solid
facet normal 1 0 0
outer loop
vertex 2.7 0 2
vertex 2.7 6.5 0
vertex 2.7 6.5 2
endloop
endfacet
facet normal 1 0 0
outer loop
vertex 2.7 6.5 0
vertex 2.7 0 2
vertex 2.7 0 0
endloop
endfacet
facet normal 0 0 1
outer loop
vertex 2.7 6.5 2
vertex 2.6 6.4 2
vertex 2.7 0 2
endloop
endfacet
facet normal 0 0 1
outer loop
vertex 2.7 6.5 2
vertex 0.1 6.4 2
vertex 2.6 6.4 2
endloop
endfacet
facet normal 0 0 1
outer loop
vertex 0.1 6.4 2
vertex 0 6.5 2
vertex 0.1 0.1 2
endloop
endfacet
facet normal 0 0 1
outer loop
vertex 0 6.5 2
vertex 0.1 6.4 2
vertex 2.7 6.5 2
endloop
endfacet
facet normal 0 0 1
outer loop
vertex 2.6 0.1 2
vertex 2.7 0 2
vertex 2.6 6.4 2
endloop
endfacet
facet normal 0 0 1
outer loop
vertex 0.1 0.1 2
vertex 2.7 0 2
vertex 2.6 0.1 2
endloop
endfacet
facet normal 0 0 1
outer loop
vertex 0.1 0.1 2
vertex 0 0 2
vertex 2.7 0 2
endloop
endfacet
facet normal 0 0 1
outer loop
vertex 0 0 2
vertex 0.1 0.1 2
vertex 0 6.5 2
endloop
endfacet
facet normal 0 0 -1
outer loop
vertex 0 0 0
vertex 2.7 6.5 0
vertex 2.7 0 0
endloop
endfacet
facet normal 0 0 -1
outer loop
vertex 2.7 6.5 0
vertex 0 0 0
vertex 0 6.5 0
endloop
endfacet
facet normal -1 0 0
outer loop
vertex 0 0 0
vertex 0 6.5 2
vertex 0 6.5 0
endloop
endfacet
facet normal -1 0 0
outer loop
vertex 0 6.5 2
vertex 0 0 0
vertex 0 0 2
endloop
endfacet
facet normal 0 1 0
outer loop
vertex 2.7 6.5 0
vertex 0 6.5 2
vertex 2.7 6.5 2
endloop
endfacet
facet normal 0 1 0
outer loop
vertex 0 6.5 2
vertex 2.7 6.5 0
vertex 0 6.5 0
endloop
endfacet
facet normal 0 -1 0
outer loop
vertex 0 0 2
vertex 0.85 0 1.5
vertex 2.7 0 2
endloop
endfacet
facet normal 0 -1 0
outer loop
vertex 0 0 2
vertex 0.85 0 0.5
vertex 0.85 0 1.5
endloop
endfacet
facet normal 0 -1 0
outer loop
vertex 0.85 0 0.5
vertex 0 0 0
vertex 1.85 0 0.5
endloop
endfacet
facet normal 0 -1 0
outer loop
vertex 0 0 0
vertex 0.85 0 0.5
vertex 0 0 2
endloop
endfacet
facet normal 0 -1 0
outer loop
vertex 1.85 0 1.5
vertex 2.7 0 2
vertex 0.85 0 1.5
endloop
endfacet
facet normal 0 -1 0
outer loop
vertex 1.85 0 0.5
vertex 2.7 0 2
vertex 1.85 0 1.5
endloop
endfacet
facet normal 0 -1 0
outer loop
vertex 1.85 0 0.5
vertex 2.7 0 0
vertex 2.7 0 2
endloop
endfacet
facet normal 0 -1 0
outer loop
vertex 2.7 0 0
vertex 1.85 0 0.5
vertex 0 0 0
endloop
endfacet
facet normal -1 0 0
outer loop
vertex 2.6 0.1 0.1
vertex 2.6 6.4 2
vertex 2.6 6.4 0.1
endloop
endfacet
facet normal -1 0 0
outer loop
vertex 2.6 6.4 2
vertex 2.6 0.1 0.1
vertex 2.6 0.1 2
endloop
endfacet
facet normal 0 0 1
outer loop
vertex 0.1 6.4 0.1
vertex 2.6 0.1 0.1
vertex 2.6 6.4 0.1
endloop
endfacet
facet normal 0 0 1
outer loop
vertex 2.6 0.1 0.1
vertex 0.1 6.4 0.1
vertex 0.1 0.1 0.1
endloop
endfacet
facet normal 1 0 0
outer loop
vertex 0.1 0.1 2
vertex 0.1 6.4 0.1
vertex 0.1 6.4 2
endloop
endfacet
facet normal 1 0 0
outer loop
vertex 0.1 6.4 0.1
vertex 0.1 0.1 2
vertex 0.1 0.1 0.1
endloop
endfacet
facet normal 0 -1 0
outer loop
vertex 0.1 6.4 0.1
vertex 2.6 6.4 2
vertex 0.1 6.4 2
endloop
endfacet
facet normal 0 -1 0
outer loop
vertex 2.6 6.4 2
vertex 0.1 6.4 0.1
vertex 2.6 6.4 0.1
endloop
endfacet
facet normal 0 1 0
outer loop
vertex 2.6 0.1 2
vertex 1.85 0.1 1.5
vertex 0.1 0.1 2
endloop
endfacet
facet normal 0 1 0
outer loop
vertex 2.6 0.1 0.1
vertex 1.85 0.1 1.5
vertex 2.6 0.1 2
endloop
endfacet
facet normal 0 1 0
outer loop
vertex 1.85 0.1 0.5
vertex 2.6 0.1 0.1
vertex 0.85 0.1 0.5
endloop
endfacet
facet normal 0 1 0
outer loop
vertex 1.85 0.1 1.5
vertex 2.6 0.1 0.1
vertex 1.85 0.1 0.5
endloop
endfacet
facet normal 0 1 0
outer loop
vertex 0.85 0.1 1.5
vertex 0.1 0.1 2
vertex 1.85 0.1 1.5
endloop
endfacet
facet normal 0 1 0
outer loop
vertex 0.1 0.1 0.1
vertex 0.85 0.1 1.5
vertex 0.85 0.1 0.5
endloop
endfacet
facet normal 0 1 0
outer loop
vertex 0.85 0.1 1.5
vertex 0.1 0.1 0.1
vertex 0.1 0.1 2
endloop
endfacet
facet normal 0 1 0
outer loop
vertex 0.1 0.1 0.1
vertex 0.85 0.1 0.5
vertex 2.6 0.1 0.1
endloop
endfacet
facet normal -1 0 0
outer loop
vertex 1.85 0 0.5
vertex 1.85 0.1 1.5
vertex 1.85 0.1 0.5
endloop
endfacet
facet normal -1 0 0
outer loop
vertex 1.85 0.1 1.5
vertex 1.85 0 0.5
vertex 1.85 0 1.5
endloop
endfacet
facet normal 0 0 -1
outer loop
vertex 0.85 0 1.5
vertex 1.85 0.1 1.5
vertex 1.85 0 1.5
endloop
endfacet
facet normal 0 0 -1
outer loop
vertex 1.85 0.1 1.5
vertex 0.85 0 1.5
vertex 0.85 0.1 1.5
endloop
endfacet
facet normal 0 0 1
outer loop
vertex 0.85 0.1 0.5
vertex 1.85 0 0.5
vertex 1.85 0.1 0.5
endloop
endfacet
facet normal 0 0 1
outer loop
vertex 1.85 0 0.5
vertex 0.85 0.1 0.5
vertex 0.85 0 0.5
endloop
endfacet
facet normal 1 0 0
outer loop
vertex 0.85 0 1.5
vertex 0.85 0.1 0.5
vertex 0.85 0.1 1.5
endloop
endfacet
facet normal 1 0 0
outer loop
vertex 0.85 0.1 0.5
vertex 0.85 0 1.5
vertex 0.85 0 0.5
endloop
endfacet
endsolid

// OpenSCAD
delta = 0.01;

width = 2.7;
depth = 6.5;
height = 2.0;
difference() {
    cube([width, depth, height]);
    translate([0.1, 0.1, 0.1]) {
        cube([width - 0.2, depth - 0.2, height]);
    };
    hole_width = 1;
    translate([width / 2 - hole_width / 2, -delta, height / 2 - hole_width / 2]) {
        cube([hole_width, .1 + delta*2, hole_width]);
    };
};
